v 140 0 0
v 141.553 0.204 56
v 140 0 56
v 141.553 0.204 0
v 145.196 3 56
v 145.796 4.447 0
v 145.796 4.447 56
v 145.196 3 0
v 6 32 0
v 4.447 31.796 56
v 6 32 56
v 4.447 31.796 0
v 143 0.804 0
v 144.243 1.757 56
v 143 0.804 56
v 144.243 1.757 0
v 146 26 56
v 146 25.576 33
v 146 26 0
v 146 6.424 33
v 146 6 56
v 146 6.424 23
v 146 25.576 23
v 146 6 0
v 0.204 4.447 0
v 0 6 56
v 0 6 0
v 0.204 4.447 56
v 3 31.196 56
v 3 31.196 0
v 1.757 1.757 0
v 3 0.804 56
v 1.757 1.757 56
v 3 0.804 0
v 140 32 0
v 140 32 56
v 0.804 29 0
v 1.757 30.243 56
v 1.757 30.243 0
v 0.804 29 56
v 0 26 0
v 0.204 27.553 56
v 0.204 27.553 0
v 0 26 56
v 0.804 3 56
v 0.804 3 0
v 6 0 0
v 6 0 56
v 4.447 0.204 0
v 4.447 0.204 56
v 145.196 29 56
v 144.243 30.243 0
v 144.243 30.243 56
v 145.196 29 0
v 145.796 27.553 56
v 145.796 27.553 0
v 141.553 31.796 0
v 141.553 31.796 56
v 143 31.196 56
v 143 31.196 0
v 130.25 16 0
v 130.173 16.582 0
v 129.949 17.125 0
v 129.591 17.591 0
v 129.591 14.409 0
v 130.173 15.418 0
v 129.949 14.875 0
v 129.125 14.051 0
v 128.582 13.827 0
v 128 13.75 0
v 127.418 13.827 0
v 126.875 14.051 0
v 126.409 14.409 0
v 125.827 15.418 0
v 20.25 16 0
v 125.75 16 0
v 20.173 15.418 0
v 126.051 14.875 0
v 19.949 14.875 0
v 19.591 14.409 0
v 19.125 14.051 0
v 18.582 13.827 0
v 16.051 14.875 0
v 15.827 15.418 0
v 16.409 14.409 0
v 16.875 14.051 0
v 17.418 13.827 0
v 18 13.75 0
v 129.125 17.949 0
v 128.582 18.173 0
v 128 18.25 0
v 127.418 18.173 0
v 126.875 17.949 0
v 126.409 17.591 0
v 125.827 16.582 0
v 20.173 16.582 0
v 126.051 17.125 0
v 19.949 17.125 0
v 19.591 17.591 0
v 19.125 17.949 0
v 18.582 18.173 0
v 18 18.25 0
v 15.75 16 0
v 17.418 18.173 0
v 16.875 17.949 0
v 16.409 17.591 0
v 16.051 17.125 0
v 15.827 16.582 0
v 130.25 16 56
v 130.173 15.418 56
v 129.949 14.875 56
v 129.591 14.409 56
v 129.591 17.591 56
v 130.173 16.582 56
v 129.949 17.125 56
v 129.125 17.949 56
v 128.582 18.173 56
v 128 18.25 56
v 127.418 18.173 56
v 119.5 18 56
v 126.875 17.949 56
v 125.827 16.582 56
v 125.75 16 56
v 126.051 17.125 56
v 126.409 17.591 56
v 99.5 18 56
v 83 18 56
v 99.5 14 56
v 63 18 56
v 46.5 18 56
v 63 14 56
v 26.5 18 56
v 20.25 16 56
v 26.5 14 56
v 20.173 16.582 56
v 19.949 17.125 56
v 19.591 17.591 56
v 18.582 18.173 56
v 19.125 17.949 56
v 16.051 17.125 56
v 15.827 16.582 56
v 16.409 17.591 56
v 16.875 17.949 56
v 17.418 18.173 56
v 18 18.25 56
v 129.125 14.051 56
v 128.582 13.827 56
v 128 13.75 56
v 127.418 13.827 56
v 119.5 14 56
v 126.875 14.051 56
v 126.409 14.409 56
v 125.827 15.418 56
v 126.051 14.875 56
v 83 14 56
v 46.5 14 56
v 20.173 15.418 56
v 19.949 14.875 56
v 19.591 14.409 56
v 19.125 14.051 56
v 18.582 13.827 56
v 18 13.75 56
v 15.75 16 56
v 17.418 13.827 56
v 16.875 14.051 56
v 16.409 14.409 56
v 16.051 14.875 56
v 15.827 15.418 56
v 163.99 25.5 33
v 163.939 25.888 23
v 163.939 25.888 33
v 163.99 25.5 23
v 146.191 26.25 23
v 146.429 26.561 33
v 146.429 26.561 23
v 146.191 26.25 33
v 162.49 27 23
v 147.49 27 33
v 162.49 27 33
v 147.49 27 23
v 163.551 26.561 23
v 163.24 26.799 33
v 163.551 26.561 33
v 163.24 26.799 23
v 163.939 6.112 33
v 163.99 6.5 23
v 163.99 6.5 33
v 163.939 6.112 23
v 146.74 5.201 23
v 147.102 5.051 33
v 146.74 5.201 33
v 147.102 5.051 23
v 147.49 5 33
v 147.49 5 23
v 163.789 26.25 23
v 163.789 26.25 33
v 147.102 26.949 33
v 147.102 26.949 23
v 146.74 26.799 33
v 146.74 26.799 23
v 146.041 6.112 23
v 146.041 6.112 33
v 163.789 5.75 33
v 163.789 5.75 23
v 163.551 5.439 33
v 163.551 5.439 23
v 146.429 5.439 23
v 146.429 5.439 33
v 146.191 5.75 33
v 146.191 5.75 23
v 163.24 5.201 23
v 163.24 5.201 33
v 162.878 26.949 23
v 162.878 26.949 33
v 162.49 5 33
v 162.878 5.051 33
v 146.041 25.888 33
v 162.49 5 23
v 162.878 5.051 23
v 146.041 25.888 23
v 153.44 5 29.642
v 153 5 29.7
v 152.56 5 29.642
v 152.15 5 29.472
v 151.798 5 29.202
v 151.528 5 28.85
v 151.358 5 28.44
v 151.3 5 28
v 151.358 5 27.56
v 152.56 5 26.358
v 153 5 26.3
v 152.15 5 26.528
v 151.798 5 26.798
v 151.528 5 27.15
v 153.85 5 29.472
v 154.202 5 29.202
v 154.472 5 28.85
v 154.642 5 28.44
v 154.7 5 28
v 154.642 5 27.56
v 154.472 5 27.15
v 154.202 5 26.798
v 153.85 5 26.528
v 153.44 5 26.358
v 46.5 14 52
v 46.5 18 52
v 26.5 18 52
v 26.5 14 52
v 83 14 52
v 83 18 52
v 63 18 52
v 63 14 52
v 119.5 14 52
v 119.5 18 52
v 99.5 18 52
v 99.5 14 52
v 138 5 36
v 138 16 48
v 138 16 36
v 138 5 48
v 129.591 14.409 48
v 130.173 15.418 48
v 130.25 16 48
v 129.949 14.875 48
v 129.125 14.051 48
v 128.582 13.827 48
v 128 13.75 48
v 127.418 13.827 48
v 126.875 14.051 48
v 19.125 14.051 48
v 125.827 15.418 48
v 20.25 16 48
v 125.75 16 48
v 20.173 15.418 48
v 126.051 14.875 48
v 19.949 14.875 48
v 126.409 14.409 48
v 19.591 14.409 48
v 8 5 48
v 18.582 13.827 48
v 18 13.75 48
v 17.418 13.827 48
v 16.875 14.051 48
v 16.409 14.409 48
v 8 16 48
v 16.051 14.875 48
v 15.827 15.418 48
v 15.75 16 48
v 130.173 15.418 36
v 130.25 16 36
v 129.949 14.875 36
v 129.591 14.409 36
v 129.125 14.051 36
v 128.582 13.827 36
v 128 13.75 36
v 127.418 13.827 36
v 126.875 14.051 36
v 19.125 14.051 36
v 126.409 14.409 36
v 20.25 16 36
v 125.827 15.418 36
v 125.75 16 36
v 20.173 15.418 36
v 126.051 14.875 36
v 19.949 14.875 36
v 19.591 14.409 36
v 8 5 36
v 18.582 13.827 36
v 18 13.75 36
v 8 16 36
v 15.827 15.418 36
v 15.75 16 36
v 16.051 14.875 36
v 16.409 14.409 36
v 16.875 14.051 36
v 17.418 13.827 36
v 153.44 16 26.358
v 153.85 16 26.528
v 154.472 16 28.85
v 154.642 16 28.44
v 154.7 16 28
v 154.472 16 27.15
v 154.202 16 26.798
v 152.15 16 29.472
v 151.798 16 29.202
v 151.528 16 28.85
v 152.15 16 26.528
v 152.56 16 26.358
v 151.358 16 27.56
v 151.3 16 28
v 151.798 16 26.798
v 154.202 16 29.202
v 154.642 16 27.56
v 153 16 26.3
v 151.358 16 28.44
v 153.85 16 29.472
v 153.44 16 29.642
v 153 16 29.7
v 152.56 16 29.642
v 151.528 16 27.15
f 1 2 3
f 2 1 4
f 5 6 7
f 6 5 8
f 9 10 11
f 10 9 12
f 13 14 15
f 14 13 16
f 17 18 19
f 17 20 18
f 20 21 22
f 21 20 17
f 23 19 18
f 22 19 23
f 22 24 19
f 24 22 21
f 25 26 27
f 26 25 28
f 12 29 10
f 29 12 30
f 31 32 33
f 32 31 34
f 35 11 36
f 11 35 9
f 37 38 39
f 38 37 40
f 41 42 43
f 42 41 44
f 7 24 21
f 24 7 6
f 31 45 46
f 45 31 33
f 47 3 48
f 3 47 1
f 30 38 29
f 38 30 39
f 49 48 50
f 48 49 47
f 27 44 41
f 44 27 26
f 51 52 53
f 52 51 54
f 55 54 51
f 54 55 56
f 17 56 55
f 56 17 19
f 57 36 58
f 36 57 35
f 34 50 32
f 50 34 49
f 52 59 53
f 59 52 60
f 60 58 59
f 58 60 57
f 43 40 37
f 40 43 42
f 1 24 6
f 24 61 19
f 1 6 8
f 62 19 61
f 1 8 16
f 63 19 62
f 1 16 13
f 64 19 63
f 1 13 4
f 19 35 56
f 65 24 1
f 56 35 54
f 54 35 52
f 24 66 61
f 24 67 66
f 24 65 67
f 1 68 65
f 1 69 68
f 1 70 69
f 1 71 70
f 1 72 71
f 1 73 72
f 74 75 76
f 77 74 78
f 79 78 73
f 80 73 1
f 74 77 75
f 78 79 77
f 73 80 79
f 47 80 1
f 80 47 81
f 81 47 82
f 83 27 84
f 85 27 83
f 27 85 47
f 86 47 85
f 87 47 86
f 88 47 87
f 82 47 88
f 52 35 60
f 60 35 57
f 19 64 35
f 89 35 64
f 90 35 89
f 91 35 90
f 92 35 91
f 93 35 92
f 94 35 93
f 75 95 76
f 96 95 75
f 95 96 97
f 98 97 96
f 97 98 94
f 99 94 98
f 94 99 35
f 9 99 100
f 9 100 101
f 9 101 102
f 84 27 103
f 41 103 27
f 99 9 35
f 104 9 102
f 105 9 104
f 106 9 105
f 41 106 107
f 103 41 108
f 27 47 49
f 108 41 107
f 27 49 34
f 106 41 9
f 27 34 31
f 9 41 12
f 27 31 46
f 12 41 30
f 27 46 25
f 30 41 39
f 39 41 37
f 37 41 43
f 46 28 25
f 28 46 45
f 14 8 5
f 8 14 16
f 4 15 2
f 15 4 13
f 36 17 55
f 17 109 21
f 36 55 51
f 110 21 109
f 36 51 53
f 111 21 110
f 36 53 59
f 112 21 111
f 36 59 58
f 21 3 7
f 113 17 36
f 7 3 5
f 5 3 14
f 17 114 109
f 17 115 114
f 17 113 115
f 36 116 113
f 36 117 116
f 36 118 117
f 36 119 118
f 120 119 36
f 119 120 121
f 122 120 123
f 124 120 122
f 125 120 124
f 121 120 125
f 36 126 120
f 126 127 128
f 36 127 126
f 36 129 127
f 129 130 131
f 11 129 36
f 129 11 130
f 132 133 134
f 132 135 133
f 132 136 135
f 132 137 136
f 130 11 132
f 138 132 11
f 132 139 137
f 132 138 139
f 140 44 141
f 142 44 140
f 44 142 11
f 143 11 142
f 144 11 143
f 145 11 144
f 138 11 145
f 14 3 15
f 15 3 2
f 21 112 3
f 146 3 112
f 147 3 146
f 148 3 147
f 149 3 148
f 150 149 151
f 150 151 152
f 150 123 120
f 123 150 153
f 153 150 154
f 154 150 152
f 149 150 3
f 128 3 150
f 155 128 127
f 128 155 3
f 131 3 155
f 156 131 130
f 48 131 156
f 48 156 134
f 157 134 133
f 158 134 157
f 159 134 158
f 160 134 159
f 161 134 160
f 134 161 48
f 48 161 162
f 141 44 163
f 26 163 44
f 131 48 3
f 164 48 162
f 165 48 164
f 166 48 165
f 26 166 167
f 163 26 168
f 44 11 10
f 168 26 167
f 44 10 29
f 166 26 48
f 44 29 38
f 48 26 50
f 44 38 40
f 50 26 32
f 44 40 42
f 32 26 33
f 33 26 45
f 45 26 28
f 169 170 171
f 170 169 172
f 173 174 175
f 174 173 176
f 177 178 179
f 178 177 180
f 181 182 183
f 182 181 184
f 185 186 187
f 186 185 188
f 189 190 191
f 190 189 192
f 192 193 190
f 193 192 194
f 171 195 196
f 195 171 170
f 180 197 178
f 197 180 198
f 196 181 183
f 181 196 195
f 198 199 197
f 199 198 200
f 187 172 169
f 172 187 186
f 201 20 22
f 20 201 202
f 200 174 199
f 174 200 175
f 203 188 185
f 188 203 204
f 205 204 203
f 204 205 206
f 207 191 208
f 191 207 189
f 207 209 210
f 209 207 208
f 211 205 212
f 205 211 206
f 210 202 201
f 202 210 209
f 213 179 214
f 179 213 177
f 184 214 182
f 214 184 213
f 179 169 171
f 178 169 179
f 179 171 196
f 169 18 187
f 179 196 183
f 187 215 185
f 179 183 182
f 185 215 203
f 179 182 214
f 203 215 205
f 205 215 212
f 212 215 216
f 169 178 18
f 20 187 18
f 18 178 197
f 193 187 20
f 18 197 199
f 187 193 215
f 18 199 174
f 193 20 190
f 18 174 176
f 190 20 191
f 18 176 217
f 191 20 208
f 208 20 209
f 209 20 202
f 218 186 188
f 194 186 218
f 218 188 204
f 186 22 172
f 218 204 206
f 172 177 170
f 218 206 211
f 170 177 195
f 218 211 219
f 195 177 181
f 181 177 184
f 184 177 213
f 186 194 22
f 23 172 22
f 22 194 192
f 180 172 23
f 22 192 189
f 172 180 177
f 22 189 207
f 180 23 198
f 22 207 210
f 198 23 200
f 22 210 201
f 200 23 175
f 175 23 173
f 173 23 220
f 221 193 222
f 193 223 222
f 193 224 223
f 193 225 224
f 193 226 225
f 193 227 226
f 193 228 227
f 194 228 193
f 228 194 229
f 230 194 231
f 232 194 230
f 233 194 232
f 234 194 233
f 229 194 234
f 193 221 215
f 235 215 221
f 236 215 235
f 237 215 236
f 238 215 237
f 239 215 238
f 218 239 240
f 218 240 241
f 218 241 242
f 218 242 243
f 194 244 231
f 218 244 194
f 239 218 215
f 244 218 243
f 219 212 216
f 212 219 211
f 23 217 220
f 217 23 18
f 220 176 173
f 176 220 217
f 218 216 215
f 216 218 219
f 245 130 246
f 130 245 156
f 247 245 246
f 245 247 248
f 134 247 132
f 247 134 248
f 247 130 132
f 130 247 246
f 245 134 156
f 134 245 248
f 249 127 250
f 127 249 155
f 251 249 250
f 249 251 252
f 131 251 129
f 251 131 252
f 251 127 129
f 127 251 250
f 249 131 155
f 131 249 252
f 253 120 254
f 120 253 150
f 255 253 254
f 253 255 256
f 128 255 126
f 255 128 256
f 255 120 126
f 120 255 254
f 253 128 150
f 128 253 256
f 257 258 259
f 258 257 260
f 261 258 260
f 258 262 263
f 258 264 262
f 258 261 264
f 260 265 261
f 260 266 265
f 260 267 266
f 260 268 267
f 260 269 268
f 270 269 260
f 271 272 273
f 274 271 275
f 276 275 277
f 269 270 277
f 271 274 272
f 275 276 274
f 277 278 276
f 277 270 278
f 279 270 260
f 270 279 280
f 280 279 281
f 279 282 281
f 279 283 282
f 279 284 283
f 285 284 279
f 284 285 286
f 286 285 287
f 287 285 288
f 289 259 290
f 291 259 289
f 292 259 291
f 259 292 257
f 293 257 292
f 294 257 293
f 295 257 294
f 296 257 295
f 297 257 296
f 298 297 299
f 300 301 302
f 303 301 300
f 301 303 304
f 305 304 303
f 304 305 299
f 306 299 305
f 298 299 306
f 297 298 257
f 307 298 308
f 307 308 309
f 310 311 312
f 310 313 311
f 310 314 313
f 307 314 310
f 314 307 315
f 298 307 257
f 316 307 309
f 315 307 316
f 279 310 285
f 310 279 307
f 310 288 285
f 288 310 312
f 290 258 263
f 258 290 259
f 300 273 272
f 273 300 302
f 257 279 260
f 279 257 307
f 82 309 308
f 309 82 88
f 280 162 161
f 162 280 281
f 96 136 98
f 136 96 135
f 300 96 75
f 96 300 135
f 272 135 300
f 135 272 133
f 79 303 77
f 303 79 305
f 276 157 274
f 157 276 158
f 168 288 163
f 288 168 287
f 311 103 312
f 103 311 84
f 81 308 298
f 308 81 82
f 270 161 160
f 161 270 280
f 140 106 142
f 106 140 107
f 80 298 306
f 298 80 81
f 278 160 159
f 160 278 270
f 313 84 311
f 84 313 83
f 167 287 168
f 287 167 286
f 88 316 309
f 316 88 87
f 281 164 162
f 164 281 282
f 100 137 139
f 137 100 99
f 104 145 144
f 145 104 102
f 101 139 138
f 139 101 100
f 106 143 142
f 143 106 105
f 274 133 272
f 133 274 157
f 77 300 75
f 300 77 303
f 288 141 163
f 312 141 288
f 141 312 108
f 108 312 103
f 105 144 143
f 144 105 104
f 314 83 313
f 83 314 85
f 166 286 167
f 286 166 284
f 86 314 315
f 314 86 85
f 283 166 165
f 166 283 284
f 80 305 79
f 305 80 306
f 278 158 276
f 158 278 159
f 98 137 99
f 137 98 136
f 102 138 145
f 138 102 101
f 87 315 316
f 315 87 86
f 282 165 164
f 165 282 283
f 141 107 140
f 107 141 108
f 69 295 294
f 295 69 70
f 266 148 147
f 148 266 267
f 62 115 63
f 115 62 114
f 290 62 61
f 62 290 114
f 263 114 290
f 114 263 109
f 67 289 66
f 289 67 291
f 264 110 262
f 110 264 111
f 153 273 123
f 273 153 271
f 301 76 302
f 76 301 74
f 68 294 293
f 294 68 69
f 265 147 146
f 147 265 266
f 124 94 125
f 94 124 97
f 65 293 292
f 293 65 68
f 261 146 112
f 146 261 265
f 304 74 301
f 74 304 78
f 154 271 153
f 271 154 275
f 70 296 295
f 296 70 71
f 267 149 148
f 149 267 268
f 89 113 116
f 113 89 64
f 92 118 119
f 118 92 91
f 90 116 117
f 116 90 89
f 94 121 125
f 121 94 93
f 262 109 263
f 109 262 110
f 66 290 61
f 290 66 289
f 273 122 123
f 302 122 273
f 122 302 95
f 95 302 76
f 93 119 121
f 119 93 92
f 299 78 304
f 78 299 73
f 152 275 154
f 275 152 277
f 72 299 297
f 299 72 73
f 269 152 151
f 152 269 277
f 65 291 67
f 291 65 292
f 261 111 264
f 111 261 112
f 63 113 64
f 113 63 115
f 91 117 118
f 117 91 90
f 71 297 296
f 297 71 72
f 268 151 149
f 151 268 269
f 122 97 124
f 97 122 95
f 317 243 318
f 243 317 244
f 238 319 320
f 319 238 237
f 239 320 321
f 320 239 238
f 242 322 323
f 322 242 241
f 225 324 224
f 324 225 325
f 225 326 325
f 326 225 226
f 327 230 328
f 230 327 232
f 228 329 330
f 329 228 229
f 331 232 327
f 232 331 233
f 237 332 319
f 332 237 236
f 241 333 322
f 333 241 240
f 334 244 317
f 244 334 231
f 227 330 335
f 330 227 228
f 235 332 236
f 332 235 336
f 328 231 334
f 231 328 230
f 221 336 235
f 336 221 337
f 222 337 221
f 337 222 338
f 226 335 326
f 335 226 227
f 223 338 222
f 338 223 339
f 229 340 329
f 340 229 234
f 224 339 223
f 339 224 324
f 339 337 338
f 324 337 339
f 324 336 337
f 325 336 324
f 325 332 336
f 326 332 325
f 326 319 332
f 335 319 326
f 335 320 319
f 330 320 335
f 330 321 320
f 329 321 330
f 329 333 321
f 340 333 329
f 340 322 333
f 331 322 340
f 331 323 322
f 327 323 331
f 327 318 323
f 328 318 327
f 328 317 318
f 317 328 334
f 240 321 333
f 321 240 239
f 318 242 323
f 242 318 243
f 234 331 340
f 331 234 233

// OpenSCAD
// file: 00_parameters.scad
// TenderCells DoorCell V1 shared parameters
// Units: millimeters

overall_w = 438;
overall_h = 368;
frame_depth = 56;

clear_w = 242;
clear_h = 312;

rail_thick = 32;
jamb_w = 48;
motor_jamb_w = 78;

// Printability targets
target_bed_xy = 220;
comfortable_part_max = 180;

// Modular frame split dimensions
top_seg_len = overall_w / 3;
bottom_seg_len = overall_w / 3;
left_jamb_seg_h = overall_h / 2;
right_lower_h = 118;
right_motor_h = 156;
right_upper_h = overall_h - right_lower_h - right_motor_h;

// Low-cost electronics envelope used by DoorCell V1.4.
// These dimensions are based on common generic modules, not a custom PCB.
esp32_board = [58, 31, 8];
drv8871_board = [31, 26, 7];
current_sensor_board = [26, 22, 7];
lm2596_board = [44, 22, 14];
inline_fuse_body = [45, 15, 14];
cn3065_board = [44, 24, 8];
electronics_clearance = 1.5;
controller_wall = 3;
controller_box_w = 170;
controller_box_h = 115;
controller_box_d = 46;
controller_lid_insert_offset = 11;
controller_m12_gland_d = 12.8;
controller_m10_gland_d = 10.6;
controller_m8_gland_d = 8.4;
controller_button_d = 16.2;

// Brass heat-set/push-in insert features.
insert_post_d = 8.0;
insert_post_h = 8.0;
insert_pilot_d = 4.6;
insert_pilot_depth = 6.5;
hold_down_screw_clearance = 3.4;

// Motor envelope for common 25GA/JGA25-370 gearmotors with optional encoder.
motor_body_d = 25.0;
motor_body_clearance_d = 27.2;
motor_body_len = 65;
motor_encoder_clearance = 16;
motor_mount_plate = [72, 92, 12];
motor_mount_cradle = [54, 74, 28];

// Optional solar add-on.
solar_panel_w = 145;
solar_panel_h = 145;
solar_panel_t = 4.0;
solar_panel_frame_border = 10;
solar_panel_frame_w = solar_panel_w + 2*solar_panel_frame_border;
solar_panel_frame_h = solar_panel_h + 2*solar_panel_frame_border;
solar_panel_back_depth = 14;
solar_panel_lip_overlap = 3;
solar_ball_d = 22;
solar_ball_socket_clearance = 0.45;
solar_mount_m5 = 5.4;

// Tongue-and-groove frame joints
// Fit target: common FDM printers with PETG/ASA.
// Clearance is per side, so sockets add 2x this value.
tongue_len = 18;
tongue_w = 22;
tongue_z = 10;
tongue_clearance_side = 0.25;
tongue_socket_depth_extra = 0.60;

door_w = 270;
door_h = 326;
door_t = 8;

track_gap = 11;
track_depth = 12;

// Rack-and-pinion drive
// Metric module gear math:
// circular_pitch = PI * module
// pitch_diameter = module * tooth_count
// outside_diameter = module * (tooth_count + 2)
// root_diameter = module * (tooth_count - 2.5)
gear_module = 2.0;
pressure_angle = 20;
gear_backlash = 0.20; // mm removed from rack tooth thickness at pitch line

pinion_teeth = 16;
pinion_pitch_d = gear_module * pinion_teeth;
pinion_pitch_radius = pinion_pitch_d / 2;
pinion_outer_d = gear_module * (pinion_teeth + 2);
pinion_outer_radius = pinion_outer_d / 2;
pinion_root_d = gear_module * (pinion_teeth - 2.5);
pinion_root_radius = pinion_root_d / 2;
pinion_thick = 12;
shaft_d = 6.2;

rack_tooth_count = 15;
rack_circular_pitch = 3.141592653589793 * gear_module;
rack_len = rack_circular_pitch * rack_tooth_count;
rack_w = 18;
rack_t = 6;
rack_addendum = gear_module;
rack_dedendum = 1.25 * gear_module;
rack_tooth_h = rack_addendum + rack_dedendum;
rack_pitch_line_z = rack_dedendum;
rack_tooth_pitch_thickness = rack_circular_pitch / 2 - gear_backlash;
rack_tooth_top_w = rack_tooth_pitch_thickness - 2 * rack_addendum * tan(pressure_angle);
rack_tooth_root_w = rack_tooth_pitch_thickness + 2 * rack_dedendum * tan(pressure_angle);

screw_m3 = 3.4;
screw_m4 = 4.5;
insert_m3 = 4.6;

eps = 0.01;

module rounded_box(size=[10,10,10], r=2) {
  hull() {
    translate([r,r,0]) cylinder(h=size[2], r=r, $fn=24);
    translate([size[0]-r,r,0]) cylinder(h=size[2], r=r, $fn=24);
    translate([r,size[1]-r,0]) cylinder(h=size[2], r=r, $fn=24);
    translate([size[0]-r,size[1]-r,0]) cylinder(h=size[2], r=r, $fn=24);
  }
}

module m3_clearance_hole(h=20) {
  cylinder(h=h, d=screw_m3, $fn=24);
}

module m4_clearance_hole(h=20) {
  cylinder(h=h, d=screw_m4, $fn=24);
}

module heat_insert_hole(h=6) {
  cylinder(h=h, d=insert_m3, $fn=24);
}

module heat_insert_post(h=insert_post_h, d=insert_post_d) {
  difference() {
    cylinder(h=h, d=d, $fn=32);
    translate([0,0,h-insert_pilot_depth+eps])
      cylinder(h=insert_pilot_depth+eps, d=insert_pilot_d, $fn=24);
  }
}

module m3_hold_down_slot(length=10, h=4) {
  hull() {
    translate([-length/2,0,0]) cylinder(h=h, d=hold_down_screw_clearance, $fn=20);
    translate([ length/2,0,0]) cylinder(h=h, d=hold_down_screw_clearance, $fn=20);
  }
}

module rail_channel(length=100) {
  cube([length, track_gap, track_depth]);
}

module frame_tongue_x() {
  rounded_box([tongue_len, tongue_w, tongue_z], r=1.5);
}

module frame_socket_x() {
  cube([
    tongue_len + tongue_socket_depth_extra,
    tongue_w + 2*tongue_clearance_side,
    tongue_z + 2*tongue_clearance_side
  ]);
}

module frame_tongue_y() {
  rounded_box([tongue_w, tongue_len, tongue_z], r=1.5);
}

module frame_socket_y() {
  cube([
    tongue_w + 2*tongue_clearance_side,
    tongue_len + tongue_socket_depth_extra,
    tongue_z + 2*tongue_clearance_side
  ]);
}

module rack_teeth(len=rack_len) {
  teeth = floor(len / rack_circular_pitch);
  for (i=[0:teeth-1]) {
    center = i*rack_circular_pitch + rack_circular_pitch/2;
    translate([0, 0, rack_t-0.20])
      linear_extrude(height=rack_w)
        polygon(points=[
          [center - rack_tooth_root_w/2, 0],
          [center + rack_tooth_root_w/2, 0],
          [center + rack_tooth_top_w/2, rack_tooth_h],
          [center - rack_tooth_top_w/2, rack_tooth_h]
        ]);
  }
}

function polar_point(r, a) = [r * cos(a), r * sin(a)];
// file: frame_modular_common.scad
include <00_parameters.scad>

module horizontal_frame_segment(seg_len=top_seg_len, rail_kind="top", joint_left="socket", joint_right="tongue") {
  difference() {
    union() {
      rounded_box([seg_len, rail_thick, frame_depth], r=6);

      if (joint_right == "tongue") {
        translate([seg_len - eps, rail_thick/2 - tongue_w/2, frame_depth/2 - tongue_z/2])
          frame_tongue_x();
      }
    }

    // Tongue receiver from previous segment.
    if (joint_left == "socket") {
      translate([
        -eps,
        rail_thick/2 - (tongue_w + 2*tongue_clearance_side)/2,
        frame_depth/2 - (tongue_z + 2*tongue_clearance_side)/2
      ])
        frame_socket_x();
    }

    // Sliding door guide channel.
    if (rail_kind == "top") {
      translate([8, rail_thick-track_gap-5, 8])
        rail_channel(length=seg_len-16);
    } else {
      translate([8, 5, frame_depth-track_depth-8])
        rail_channel(length=seg_len-16);

      // Drain slots for bottom rail.
      for (x=[seg_len*0.25, seg_len*0.5, seg_len*0.75]) {
        translate([x-10, rail_thick/2-2, frame_depth-4])
          cube([20, 4, 10]);
      }
    }

    // Coop mounting holes.
    for (x=[18, seg_len-18]) {
      translate([x, rail_thick/2, -eps])
        m4_clearance_hole(h=frame_depth+2);
    }

    // Cross-bolt holes near frame split joints.
    if (joint_left == "socket") {
      translate([tongue_len/2, rail_thick/2, frame_depth/2])
        rotate([90,0,0]) m3_clearance_hole(h=rail_thick+2);
    }
    if (joint_right == "tongue") {
      translate([seg_len + tongue_len/2 - 2, rail_thick/2, frame_depth/2])
        rotate([90,0,0]) m3_clearance_hole(h=rail_thick+2);
    }
  }
}

module left_jamb_segment(seg_h=left_jamb_seg_h, joint_bottom="socket", joint_top="tongue", corner_bottom=false, corner_top=false) {
  difference() {
    union() {
      rounded_box([jamb_w, seg_h, frame_depth], r=6);

      if (joint_top == "tongue") {
        translate([jamb_w/2 - tongue_w/2, seg_h - eps, frame_depth/2 - tongue_z/2])
          frame_tongue_y();
      }
    }

    if (joint_bottom == "socket") {
      translate([
        jamb_w/2 - (tongue_w + 2*tongue_clearance_side)/2,
        -eps,
        frame_depth/2 - (tongue_z + 2*tongue_clearance_side)/2
      ])
        frame_socket_y();
    }

    // Door pocket relief.
    translate([jamb_w-18, 0, 8])
      cube([16, seg_h, frame_depth-16]);

    // Coop mounting holes.
    for (y=[seg_h*0.28, seg_h*0.72]) {
      translate([jamb_w/2, y, -eps]) m4_clearance_hole(h=frame_depth+2);
    }

    // Rail-to-jamb corner holes.
    if (corner_bottom) {
      translate([jamb_w-10, 16, frame_depth/2])
        rotate([0,90,0]) m3_clearance_hole(h=20);
    }
    if (corner_top) {
      translate([jamb_w-10, seg_h-16, frame_depth/2])
        rotate([0,90,0]) m3_clearance_hole(h=20);
    }

    // Cross-bolt through tongue-and-groove.
    if (joint_bottom == "socket") {
      translate([jamb_w/2, tongue_len/2, frame_depth/2])
        rotate([0,90,0]) m3_clearance_hole(h=jamb_w+2);
    }
    if (joint_top == "tongue") {
      translate([jamb_w/2, seg_h + tongue_len/2 - 2, frame_depth/2])
        rotate([0,90,0]) m3_clearance_hole(h=jamb_w+2);
    }
  }
}

module right_jamb_segment(seg_h=120, has_motor_bay=false, joint_bottom="socket", joint_top="tongue", corner_bottom=false, corner_top=false) {
  difference() {
    union() {
      rounded_box([motor_jamb_w, seg_h, frame_depth], r=6);

      if (has_motor_bay) {
        translate([motor_jamb_w-8, 20, 0])
          rounded_box([70, seg_h-32, frame_depth], r=5);
      }

      if (joint_top == "tongue") {
        translate([motor_jamb_w/2 - tongue_w/2, seg_h - eps, frame_depth/2 - tongue_z/2])
          frame_tongue_y();
      }
    }

    if (joint_bottom == "socket") {
      translate([
        motor_jamb_w/2 - (tongue_w + 2*tongue_clearance_side)/2,
        -eps,
        frame_depth/2 - (tongue_z + 2*tongue_clearance_side)/2
      ])
        frame_socket_y();
    }

    // Door pocket relief.
    translate([0, 0, 8])
      cube([20, seg_h, frame_depth-16]);

    if (has_motor_bay) {
      // Motor cassette pocket sized for the revised 25GA mount.
      translate([motor_jamb_w+5, 33, 8])
        cube([62, 92, 40]);

      // Pinion/rack engagement window.
      translate([4, 68, 16])
        cube([46, 36, 24]);

      // Motor/control harness pass-through for M12-style cable gland routing.
      translate([motor_jamb_w+26, seg_h-42, 16])
        cube([24, 34, 26]);

      // Limit switch lead pass-throughs.
      translate([motor_jamb_w-2, 18, 18])
        cube([16, 18, 16]);
      translate([motor_jamb_w-2, seg_h-36, 18])
        cube([16, 18, 16]);
    }

    // Coop mounting holes.
    for (y=[seg_h*0.28, seg_h*0.72]) {
      translate([motor_jamb_w/2, y, -eps]) m4_clearance_hole(h=frame_depth+2);
    }

    // Rail-to-jamb corner holes.
    if (corner_bottom) {
      translate([10, 16, frame_depth/2])
        rotate([0,90,0]) m3_clearance_hole(h=20);
    }
    if (corner_top) {
      translate([10, seg_h-16, frame_depth/2])
        rotate([0,90,0]) m3_clearance_hole(h=20);
    }

    // Cross-bolt through tongue-and-groove.
    if (joint_bottom == "socket") {
      translate([motor_jamb_w/2, tongue_len/2, frame_depth/2])
        rotate([0,90,0]) m3_clearance_hole(h=motor_jamb_w+2);
    }
    if (joint_top == "tongue") {
      translate([motor_jamb_w/2, seg_h + tongue_len/2 - 2, frame_depth/2])
        rotate([0,90,0]) m3_clearance_hole(h=motor_jamb_w+2);
    }
  }
}
// main file
include <frame_modular_common.scad>

horizontal_frame_segment(seg_len=bottom_seg_len, rail_kind="bottom", joint_left="none", joint_right="tongue");
